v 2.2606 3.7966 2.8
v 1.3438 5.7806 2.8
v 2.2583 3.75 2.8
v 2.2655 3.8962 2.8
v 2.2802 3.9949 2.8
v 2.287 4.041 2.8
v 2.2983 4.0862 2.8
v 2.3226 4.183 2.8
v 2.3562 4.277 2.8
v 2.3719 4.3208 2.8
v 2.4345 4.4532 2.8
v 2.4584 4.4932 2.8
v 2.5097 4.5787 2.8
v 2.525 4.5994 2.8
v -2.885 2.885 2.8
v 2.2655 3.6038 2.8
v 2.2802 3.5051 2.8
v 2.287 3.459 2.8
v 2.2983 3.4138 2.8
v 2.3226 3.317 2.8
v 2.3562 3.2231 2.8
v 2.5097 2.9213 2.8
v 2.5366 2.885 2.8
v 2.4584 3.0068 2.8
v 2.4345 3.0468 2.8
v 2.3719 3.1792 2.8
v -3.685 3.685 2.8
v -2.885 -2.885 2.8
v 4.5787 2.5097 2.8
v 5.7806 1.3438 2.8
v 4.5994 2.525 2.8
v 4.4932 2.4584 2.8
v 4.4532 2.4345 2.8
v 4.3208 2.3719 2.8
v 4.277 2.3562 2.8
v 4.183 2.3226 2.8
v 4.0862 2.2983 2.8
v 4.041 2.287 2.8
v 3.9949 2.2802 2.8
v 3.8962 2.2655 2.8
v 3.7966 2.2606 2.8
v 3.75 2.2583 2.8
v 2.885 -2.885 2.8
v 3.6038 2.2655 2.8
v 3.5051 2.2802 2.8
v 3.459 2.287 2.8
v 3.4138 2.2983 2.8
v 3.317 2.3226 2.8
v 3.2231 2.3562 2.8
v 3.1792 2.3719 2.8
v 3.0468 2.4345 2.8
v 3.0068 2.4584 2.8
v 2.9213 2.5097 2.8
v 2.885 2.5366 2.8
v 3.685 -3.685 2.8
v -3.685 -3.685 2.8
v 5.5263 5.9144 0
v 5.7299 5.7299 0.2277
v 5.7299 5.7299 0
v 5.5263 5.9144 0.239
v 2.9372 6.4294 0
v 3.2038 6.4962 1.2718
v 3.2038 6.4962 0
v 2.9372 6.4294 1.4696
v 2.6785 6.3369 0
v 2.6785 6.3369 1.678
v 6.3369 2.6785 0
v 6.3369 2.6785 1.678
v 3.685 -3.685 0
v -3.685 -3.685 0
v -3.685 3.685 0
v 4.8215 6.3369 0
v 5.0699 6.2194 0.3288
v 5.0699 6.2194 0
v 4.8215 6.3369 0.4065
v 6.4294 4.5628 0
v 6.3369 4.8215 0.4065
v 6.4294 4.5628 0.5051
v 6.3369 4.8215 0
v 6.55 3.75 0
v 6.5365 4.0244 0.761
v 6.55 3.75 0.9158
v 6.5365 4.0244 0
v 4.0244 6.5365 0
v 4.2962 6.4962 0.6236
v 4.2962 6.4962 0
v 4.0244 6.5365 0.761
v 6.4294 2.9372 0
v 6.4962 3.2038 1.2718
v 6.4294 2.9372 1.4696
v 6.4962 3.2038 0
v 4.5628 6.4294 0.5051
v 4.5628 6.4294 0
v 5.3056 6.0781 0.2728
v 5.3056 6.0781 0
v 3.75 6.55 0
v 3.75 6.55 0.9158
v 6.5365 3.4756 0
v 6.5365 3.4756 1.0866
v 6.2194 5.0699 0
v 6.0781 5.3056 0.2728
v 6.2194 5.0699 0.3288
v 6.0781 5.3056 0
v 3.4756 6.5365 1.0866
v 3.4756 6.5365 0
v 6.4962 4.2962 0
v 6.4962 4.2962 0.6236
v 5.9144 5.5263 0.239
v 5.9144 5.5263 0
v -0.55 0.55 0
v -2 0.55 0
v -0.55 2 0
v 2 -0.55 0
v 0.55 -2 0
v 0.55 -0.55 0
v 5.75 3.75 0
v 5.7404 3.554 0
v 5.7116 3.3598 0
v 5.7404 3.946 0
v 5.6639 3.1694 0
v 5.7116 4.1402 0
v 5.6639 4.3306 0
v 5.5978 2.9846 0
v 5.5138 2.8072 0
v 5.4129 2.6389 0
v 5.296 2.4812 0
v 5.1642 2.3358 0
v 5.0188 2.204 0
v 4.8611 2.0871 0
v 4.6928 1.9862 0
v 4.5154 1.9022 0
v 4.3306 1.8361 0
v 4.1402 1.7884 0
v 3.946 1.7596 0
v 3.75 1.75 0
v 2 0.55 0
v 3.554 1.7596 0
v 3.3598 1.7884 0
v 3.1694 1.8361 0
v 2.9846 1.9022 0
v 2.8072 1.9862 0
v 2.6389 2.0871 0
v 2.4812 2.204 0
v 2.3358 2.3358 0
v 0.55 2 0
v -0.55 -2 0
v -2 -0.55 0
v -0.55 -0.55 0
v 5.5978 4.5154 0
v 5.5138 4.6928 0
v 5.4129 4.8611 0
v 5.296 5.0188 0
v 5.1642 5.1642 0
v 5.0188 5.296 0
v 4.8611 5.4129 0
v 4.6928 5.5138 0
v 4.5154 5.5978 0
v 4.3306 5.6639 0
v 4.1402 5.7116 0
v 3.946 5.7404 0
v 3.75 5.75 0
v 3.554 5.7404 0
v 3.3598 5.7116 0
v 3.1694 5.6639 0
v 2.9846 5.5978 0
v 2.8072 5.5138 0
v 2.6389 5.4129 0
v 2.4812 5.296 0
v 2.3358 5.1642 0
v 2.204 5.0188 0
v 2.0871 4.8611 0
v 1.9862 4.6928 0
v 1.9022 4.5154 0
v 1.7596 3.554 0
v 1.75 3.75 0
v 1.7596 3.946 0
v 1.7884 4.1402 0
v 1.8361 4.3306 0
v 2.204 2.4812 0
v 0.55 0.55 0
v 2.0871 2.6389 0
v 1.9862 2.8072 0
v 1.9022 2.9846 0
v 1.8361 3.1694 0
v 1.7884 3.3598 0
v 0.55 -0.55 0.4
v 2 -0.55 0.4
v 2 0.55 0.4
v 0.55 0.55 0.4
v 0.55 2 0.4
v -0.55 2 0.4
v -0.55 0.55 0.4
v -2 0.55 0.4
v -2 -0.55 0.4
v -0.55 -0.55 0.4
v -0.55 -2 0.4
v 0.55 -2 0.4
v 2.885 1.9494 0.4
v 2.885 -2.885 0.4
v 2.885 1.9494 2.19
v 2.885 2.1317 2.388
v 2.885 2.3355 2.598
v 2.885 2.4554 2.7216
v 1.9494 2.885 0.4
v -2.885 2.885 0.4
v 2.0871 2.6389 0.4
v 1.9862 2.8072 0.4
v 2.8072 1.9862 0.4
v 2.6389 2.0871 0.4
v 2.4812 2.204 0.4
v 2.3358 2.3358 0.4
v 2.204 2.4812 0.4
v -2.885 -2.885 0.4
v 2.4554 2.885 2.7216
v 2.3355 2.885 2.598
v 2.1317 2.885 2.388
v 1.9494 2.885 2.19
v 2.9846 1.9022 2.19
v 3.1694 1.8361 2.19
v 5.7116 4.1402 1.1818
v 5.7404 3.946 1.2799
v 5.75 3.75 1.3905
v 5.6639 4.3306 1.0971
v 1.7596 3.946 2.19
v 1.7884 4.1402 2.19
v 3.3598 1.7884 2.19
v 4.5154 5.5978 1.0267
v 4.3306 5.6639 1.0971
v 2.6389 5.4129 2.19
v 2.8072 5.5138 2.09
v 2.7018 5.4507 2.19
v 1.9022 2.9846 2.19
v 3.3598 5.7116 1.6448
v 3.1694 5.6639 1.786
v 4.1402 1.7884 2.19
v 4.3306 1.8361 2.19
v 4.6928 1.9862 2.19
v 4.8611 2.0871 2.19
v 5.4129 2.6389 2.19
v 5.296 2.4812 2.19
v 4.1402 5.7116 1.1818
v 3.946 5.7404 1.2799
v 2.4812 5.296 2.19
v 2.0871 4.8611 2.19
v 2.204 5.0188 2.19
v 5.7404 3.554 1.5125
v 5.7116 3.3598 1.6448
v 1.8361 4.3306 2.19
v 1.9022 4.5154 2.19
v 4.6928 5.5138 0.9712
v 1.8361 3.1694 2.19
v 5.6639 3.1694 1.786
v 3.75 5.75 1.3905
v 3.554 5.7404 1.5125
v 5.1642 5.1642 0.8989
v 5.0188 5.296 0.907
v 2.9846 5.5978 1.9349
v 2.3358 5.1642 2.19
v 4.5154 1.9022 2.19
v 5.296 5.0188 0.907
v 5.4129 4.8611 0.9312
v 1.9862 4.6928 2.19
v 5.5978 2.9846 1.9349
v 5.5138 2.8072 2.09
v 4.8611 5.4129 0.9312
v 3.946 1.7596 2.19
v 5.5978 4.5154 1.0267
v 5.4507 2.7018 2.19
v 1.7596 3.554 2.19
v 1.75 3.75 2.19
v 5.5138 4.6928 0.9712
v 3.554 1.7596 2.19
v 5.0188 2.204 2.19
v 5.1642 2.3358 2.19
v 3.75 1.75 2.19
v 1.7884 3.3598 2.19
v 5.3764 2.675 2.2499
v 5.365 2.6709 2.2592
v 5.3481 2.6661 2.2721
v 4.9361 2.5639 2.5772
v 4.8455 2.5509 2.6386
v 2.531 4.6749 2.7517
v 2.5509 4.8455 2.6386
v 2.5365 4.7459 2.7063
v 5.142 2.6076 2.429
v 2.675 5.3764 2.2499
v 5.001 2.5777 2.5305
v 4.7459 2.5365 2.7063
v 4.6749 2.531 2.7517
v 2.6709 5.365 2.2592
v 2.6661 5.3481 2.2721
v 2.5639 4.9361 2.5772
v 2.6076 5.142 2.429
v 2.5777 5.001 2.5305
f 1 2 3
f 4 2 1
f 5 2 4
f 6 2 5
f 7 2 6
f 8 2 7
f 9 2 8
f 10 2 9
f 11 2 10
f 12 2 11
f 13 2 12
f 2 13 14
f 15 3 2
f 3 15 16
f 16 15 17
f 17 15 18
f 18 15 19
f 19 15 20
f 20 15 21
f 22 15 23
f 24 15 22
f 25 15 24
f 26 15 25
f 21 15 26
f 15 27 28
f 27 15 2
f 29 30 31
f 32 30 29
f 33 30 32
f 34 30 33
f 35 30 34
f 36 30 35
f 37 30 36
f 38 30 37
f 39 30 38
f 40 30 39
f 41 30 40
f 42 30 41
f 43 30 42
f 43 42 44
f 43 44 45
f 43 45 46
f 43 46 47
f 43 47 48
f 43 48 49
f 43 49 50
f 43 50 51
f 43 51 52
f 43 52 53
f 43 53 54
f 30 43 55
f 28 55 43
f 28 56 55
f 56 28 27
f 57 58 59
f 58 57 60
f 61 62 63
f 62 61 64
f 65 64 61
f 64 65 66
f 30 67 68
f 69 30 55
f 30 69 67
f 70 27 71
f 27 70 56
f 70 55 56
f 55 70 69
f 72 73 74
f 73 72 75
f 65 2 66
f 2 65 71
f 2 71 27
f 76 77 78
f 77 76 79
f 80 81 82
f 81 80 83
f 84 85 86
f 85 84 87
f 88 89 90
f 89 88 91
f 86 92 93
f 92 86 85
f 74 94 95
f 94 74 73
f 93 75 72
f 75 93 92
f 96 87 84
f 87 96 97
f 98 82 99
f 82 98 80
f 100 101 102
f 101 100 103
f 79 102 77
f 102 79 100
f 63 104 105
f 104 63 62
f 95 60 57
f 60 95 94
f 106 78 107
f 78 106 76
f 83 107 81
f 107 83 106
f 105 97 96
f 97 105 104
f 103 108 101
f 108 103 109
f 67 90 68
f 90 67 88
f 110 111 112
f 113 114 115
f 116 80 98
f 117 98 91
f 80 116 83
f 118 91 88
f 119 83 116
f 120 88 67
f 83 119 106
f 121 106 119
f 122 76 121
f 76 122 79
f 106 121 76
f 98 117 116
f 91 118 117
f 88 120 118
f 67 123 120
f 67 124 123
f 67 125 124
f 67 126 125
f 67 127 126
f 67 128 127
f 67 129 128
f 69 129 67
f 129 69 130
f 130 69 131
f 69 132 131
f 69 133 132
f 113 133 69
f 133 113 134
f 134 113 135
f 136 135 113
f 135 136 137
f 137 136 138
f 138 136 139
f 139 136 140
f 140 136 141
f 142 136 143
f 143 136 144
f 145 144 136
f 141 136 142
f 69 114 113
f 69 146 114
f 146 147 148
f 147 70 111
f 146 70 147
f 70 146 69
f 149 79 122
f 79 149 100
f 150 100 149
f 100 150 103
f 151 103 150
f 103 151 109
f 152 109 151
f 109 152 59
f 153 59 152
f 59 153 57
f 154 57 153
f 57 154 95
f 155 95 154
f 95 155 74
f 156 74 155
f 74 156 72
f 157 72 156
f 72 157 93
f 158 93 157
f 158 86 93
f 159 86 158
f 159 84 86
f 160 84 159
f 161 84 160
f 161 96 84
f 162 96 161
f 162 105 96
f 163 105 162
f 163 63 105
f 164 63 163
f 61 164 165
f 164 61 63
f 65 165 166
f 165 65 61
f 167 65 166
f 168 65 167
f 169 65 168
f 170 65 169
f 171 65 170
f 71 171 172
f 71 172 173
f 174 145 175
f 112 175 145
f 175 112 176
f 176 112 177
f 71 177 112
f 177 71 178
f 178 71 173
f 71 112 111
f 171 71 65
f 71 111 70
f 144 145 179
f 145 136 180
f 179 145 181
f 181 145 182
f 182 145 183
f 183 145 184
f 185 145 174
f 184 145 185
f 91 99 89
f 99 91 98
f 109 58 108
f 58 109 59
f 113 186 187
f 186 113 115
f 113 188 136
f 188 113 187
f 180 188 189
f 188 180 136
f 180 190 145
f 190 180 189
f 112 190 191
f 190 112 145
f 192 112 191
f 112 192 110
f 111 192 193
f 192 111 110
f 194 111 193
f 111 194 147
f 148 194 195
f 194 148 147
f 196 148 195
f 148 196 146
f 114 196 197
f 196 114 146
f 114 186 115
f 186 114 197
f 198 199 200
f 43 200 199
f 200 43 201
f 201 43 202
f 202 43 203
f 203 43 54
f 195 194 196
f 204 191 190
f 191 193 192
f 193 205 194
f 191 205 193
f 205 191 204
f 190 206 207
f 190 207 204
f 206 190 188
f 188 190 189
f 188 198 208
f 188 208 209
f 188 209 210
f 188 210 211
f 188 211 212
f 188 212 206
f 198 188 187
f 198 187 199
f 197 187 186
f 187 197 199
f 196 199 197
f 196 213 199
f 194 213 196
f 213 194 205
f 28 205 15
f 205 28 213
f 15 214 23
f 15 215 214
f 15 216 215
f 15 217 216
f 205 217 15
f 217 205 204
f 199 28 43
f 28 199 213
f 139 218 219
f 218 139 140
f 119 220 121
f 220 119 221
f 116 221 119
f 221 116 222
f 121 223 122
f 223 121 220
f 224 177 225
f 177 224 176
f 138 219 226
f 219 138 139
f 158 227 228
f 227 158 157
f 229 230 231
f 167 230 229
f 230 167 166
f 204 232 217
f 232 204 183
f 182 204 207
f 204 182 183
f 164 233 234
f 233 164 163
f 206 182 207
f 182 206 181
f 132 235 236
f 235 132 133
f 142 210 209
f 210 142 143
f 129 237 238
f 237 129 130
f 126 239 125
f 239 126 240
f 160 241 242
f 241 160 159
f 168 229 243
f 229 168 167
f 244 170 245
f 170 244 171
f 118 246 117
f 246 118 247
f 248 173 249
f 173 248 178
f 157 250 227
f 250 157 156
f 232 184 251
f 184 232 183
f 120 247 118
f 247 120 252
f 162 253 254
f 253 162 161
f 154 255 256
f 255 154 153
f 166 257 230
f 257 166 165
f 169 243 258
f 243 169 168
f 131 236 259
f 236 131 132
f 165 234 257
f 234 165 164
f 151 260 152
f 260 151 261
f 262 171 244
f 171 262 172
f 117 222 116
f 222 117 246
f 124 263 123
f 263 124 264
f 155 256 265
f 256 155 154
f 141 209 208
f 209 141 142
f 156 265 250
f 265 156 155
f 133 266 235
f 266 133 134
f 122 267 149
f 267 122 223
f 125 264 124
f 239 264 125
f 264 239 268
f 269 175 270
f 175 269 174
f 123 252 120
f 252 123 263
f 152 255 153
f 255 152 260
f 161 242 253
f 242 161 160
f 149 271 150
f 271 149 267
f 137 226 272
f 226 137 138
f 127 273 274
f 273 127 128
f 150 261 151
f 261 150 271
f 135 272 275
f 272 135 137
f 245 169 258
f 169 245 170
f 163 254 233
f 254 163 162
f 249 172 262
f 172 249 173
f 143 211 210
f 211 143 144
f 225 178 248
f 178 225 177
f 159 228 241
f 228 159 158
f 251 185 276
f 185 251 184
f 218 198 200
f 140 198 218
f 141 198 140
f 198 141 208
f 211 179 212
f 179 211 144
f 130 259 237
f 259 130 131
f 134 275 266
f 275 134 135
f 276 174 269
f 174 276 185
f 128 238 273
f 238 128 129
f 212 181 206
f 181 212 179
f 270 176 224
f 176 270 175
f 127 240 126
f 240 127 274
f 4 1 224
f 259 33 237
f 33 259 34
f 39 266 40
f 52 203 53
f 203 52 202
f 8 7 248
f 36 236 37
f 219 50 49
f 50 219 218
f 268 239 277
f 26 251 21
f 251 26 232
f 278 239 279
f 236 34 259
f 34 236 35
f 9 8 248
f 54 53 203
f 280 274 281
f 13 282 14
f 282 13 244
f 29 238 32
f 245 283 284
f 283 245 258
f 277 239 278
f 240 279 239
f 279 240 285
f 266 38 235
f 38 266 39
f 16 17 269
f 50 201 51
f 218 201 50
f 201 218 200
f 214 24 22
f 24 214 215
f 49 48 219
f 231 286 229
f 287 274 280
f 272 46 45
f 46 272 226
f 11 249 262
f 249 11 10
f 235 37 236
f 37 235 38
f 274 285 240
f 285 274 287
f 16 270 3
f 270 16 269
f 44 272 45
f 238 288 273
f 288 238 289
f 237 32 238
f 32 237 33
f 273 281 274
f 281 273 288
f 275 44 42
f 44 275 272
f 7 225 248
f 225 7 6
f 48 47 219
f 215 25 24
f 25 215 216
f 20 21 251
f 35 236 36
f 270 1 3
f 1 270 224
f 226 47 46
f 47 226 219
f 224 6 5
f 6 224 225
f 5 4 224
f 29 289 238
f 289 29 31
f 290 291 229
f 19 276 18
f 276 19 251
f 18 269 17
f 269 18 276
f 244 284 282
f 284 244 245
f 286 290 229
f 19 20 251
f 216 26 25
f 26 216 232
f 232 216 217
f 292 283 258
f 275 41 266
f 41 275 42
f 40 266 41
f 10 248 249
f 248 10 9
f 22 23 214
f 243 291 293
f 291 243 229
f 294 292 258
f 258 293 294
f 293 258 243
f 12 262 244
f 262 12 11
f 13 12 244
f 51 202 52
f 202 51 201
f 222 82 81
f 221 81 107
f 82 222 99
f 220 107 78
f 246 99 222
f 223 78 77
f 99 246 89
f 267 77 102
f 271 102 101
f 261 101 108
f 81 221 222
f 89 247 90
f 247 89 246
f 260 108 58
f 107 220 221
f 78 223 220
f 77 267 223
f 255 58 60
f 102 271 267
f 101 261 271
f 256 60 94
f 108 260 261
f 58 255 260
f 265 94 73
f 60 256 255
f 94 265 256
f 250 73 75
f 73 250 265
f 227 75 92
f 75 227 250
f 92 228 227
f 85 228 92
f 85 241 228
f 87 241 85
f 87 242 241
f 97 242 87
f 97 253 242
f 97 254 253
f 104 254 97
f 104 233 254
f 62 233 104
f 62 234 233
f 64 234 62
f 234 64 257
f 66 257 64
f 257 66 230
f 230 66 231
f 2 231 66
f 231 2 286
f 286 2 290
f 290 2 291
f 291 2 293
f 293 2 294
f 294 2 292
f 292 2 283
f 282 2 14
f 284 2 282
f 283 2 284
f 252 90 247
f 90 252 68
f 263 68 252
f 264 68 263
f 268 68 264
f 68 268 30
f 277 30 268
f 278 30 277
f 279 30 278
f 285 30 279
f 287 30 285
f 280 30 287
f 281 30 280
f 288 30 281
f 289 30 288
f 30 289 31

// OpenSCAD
// THE LEVITATOR - Goes under the keycap to provide a cusion of magnetic levitation

// AUTHOR: Riskable <riskable@youknowwhat.com>
// VERSION: 1.0 (Changelog is at the bottom)

/* NOTES:

    * The default configuration works with 4x1 through 4x2mm magnets (anything shorter than 2mm will end up stuck in there just fine--don't worry about it).
    * The default configuration will "eat" 0.4mm of your stem's cross height.  So keycaps won't be able to go all the way down (if you didn't print that part of the stem slightly longer to make up for it).  In testing, losing 0.4mm of height on the cross part of the stem makes absolutely no difference whatsoever.  The keycap still stays on just fine.  I wouldn't worry about it =)

*/

$fn = 64;

use <utils.scad>

// Configurables
LEVITATOR_THICKNESS = 0.4; // How thick the floor will be/how much of the cross part of the stem (+) gets eaten by THE LEVITATOR
WALL_THICKNESS = 0.8; // How thick around the edges you want it to be (0.8 is fine and fits under most keycaps)
STEM_TOLERANCE = 0.15; // How tight the cross-shaped cutout will be
MAGNET_TOLERANCE = 0.2; // Only used with MAGNET_HEIGHT (because we have some bridging)
MAGNET_DIAMETER = 4;
MAGNET_HEIGHT = 2;
MAGNET_DISTANCE = 3.75; // Distance from the center of the stem where the magnet goes

// Constants
CHERRY_CYLINDER_DIAMETER = 5.47; // Represents the keycap's stem (female side of the +)
CHERRY_CROSS_LENGTH = 4; // Length of the - and the | in the +
// We make the cross slightly thinner than normal to keep a tight fit:
CHERRY_CROSS_THICKNESS_X = 1.1; // Width of the - and in the + (Reality: 1.31)
CHERRY_CROSS_THICKNESS_Y = 1.1; // Width of the | in the + (Reality: 1.09)

levitator(MAGNET_DIAMETER, MAGNET_HEIGHT, magnet_distance=MAGNET_DISTANCE, magnet_tolerance=MAGNET_TOLERANCE, wall_thickness=WALL_THICKNESS, thickness=LEVITATOR_THICKNESS, stem_tolerance=STEM_TOLERANCE);
//levitator_double_sided(MAGNET_DIAMETER, MAGNET_HEIGHT, magnet_distance=MAGNET_DISTANCE, magnet_tolerance=MAGNET_TOLERANCE, wall_thickness=WALL_THICKNESS, thickness=LEVITATOR_THICKNESS, stem_tolerance=STEM_TOLERANCE);

// TODO: Finish making this as well as making a matching void space version for top plates:
// This is for the special situations with long ass/heavy spacebars: 
BACKFORCE_LENGTH = 30; // 15mm from the center of the switch on either side
BACKFORCE_WIDTH = 11; // Needs to fit inside/under the keycap but not terribly tight--just enough to prevent it from rotating
//uplifting_jigaroo(BACKFORCE_LENGTH, BACKFORCE_WIDTH, stem_diameter=CHERRY_CYLINDER_DIAMETER, magnet_diameter=4, magnet_height=2, magnet_tolerance=0, wall_thickness=1.2);

module levitator(magnet_diameter, magnet_height, magnet_distance=3.75, magnet_tolerance=MAGNET_TOLERANCE, wall_thickness=0.9, thickness=1, stem_tolerance=0.15) {
    // NOTE: stem_tolerance is the keycap stem; not the switch stem
    height = 2 + wall_thickness; // Just enough to grab the stem
    difference() {
        translate([0,0,height/2]) union() {
            // Main body of the thing
            hull() {
                // NOTE: The square-ish walls around the stem area are just to provide rigidity
                cube([
                    CHERRY_CYLINDER_DIAMETER+wall_thickness*2+stem_tolerance*2,
                    CHERRY_CYLINDER_DIAMETER+wall_thickness*2+stem_tolerance*2,
                    height], center=true);
                translate([magnet_distance,magnet_distance,0])
                    cylinder(d=magnet_diameter+wall_thickness*2, h=height, center=true);
            }
            // Body of the part that holds the magnet (hollowed out below)
            translate([magnet_distance,magnet_distance,0])
                cylinder(d=magnet_diameter+wall_thickness*2, h=height, center=true);
        }
        translate([0,0,-5]) cherry_cross(length=10); // Just don't die on it
        translate([0,0,height/2+thickness+wall_thickness/2]) // Stem cutout
            cube([
                CHERRY_CYLINDER_DIAMETER+stem_tolerance*2,
                CHERRY_CYLINDER_DIAMETER+stem_tolerance*2,
                height+wall_thickness], center=true);
        translate([magnet_distance,magnet_distance,(magnet_height+magnet_tolerance)/2-0.01]) {
            cylinder(d=magnet_diameter, h=magnet_height+magnet_tolerance, center=true);
            // So we can pop the magnet out if we screw up which pole is facing down:
//            rotate([0,0,45])
//                cube([magnet_diameter/3,magnet_diameter/3,100], center=true);
        }
        // Make an angled hole in the top that stops the magnet from coming out while also letting you push it out if needed to flip it around
        translate([magnet_distance,magnet_distance,wall_thickness/2+(magnet_height+magnet_tolerance)-0.01])
            cylinder(d1=magnet_diameter, d2=magnet_diameter/1.5, h=wall_thickness, center=true);
        // Cut off a few bits here and there so it can fit under more keycaps
//        translate([magnet_distance*2+wall_thickness/1.25,magnet_distance*1.25,magnet_diameter/2])
//            cube([magnet_diameter, magnet_diameter*2, magnet_diameter*2], center=true);
//        translate([magnet_distance*1.25,magnet_distance*2+wall_thickness/1.25,magnet_diameter/2])
//            cube([magnet_diameter*2, magnet_diameter, magnet_diameter*2], center=true);
        translate([magnet_distance*1.5,magnet_distance*1.5,magnet_diameter/1.35])
            rotate([0,-50,45])
                cube([magnet_diameter, magnet_diameter*2, magnet_diameter*2], center=true);
    }
}

module levitator_double_sided(magnet_diameter, magnet_height, magnet_distance=3.75, magnet_tolerance=MAGNET_TOLERANCE, wall_thickness=0.9, thickness=1, stem_tolerance=0.15) {
    // NOTE: stem_tolerance is the keycap stem; not the switch stem
    height = 2 + wall_thickness; // Just enough to grab the stem
    difference() {
        translate([0,0,height/2]) union() {
            // Main body of the thing
            hull() {
                // NOTE: The square-ish walls around the stem area are just to provide rigidity
                cube([
                    CHERRY_CYLINDER_DIAMETER+wall_thickness*2+stem_tolerance*2,
                    CHERRY_CYLINDER_DIAMETER+wall_thickness*2+stem_tolerance*2,
                    height], center=true);
                translate([magnet_distance,magnet_distance,0])
                    cylinder(d=magnet_diameter+wall_thickness*2, h=height, center=true);
                translate([-magnet_distance,-magnet_distance,0])
                    cylinder(d=magnet_diameter+wall_thickness*2, h=height, center=true);
            }
            // Body of the part that holds the magnet (hollowed out below)
            translate([magnet_distance,magnet_distance,0])
                cylinder(d=magnet_diameter+wall_thickness*2, h=height, center=true);
        }
        translate([0,0,-5]) cherry_cross(length=10); // Just don't die on it
        translate([0,0,height/2+thickness+wall_thickness/2]) // Stem cutout
            cube([
                CHERRY_CYLINDER_DIAMETER+stem_tolerance*2,
                CHERRY_CYLINDER_DIAMETER+stem_tolerance*2,
                height+wall_thickness], center=true);
        translate([magnet_distance,magnet_distance,(magnet_height+magnet_tolerance)/2-0.01])
            cylinder(d=magnet_diameter, h=magnet_height+magnet_tolerance, center=true);
        translate([-magnet_distance,-magnet_distance,(magnet_height+magnet_tolerance)/2-0.01])
            cylinder(d=magnet_diameter, h=magnet_height+magnet_tolerance, center=true);
        // Make an angled hole in the top that stops the magnet from coming out while also letting you push it out if needed to flip it around
        translate([magnet_distance,magnet_distance,wall_thickness/2+(magnet_height+magnet_tolerance)-0.01])
            cylinder(d1=magnet_diameter, d2=magnet_diameter/1.5, h=wall_thickness, center=true);
        translate([-magnet_distance,-magnet_distance,wall_thickness/2+(magnet_height+magnet_tolerance)-0.01])
            cylinder(d1=magnet_diameter, d2=magnet_diameter/1.5, h=wall_thickness, center=true);
        // Cut off a few bits here and there so it can fit under more keycaps
        translate([magnet_distance*1.5,magnet_distance*1.5,magnet_diameter/1.35])
            rotate([0,-50,45])
                cube([magnet_diameter, magnet_diameter*2, magnet_diameter*2], center=true);
        translate([-magnet_distance*1.5,-magnet_distance*1.5,magnet_diameter/1.35])
            rotate([0,50,45])
                cube([magnet_diameter, magnet_diameter*2, magnet_diameter*2], center=true);
    }
}

// This is a magnetic levitation backward-force generator that can be placed under any given (long) keycap to cusion the bottom and provide a backwards (upwards) force to ease the burden of bringing a heavy keycap back up.  In other words, it's for (heavy) spacebars.  NOTE: The *length* is really just the distance between the center of the magnets--not the actual length of the thing.
// NOTE: Requires matching magnets (same locations underneath) in the keyboard plate!
module uplifting_jigaroo(length, width, stem_diameter=CHERRY_CYLINDER_DIAMETER, magnet_diameter=4, magnet_height=2, magnet_tolerance=0, wall_thickness=1.2) {
    // NOTE: We make this pretty thick so it's stable--even though that adds extra weight
    difference() {
        cube([
            length+magnet_diameter+magnet_tolerance*2+wall_thickness*2,
            width,
            magnet_height+wall_thickness], center=true);
        cube([stem_diameter,stem_diameter,wall_thickness*8], center=true);
        translate([length/2,0,magnet_height/2-wall_thickness/4])
            cylinder(d=magnet_diameter+magnet_tolerance*2, h=magnet_height+0.01, center=true);
        translate([-length/2,0,magnet_height/2-wall_thickness/4])
            cylinder(d=magnet_diameter+magnet_tolerance*2, h=magnet_height+0.01, center=true);
    }
}

// This makes the + bit that slides *in* to a Cherry MX style keycap:
module cherry_cross(length=CHERRY_CROSS_LENGTH, extra_length=0, extra_width=0) {
    linear_extrude(height=length) {
        square([CHERRY_CROSS_THICKNESS_Y+extra_length, CHERRY_CROSS_LENGTH+extra_width], center=true);
        square([CHERRY_CROSS_LENGTH+extra_length, CHERRY_CROSS_THICKNESS_X+extra_width], center=true);
    }
}
